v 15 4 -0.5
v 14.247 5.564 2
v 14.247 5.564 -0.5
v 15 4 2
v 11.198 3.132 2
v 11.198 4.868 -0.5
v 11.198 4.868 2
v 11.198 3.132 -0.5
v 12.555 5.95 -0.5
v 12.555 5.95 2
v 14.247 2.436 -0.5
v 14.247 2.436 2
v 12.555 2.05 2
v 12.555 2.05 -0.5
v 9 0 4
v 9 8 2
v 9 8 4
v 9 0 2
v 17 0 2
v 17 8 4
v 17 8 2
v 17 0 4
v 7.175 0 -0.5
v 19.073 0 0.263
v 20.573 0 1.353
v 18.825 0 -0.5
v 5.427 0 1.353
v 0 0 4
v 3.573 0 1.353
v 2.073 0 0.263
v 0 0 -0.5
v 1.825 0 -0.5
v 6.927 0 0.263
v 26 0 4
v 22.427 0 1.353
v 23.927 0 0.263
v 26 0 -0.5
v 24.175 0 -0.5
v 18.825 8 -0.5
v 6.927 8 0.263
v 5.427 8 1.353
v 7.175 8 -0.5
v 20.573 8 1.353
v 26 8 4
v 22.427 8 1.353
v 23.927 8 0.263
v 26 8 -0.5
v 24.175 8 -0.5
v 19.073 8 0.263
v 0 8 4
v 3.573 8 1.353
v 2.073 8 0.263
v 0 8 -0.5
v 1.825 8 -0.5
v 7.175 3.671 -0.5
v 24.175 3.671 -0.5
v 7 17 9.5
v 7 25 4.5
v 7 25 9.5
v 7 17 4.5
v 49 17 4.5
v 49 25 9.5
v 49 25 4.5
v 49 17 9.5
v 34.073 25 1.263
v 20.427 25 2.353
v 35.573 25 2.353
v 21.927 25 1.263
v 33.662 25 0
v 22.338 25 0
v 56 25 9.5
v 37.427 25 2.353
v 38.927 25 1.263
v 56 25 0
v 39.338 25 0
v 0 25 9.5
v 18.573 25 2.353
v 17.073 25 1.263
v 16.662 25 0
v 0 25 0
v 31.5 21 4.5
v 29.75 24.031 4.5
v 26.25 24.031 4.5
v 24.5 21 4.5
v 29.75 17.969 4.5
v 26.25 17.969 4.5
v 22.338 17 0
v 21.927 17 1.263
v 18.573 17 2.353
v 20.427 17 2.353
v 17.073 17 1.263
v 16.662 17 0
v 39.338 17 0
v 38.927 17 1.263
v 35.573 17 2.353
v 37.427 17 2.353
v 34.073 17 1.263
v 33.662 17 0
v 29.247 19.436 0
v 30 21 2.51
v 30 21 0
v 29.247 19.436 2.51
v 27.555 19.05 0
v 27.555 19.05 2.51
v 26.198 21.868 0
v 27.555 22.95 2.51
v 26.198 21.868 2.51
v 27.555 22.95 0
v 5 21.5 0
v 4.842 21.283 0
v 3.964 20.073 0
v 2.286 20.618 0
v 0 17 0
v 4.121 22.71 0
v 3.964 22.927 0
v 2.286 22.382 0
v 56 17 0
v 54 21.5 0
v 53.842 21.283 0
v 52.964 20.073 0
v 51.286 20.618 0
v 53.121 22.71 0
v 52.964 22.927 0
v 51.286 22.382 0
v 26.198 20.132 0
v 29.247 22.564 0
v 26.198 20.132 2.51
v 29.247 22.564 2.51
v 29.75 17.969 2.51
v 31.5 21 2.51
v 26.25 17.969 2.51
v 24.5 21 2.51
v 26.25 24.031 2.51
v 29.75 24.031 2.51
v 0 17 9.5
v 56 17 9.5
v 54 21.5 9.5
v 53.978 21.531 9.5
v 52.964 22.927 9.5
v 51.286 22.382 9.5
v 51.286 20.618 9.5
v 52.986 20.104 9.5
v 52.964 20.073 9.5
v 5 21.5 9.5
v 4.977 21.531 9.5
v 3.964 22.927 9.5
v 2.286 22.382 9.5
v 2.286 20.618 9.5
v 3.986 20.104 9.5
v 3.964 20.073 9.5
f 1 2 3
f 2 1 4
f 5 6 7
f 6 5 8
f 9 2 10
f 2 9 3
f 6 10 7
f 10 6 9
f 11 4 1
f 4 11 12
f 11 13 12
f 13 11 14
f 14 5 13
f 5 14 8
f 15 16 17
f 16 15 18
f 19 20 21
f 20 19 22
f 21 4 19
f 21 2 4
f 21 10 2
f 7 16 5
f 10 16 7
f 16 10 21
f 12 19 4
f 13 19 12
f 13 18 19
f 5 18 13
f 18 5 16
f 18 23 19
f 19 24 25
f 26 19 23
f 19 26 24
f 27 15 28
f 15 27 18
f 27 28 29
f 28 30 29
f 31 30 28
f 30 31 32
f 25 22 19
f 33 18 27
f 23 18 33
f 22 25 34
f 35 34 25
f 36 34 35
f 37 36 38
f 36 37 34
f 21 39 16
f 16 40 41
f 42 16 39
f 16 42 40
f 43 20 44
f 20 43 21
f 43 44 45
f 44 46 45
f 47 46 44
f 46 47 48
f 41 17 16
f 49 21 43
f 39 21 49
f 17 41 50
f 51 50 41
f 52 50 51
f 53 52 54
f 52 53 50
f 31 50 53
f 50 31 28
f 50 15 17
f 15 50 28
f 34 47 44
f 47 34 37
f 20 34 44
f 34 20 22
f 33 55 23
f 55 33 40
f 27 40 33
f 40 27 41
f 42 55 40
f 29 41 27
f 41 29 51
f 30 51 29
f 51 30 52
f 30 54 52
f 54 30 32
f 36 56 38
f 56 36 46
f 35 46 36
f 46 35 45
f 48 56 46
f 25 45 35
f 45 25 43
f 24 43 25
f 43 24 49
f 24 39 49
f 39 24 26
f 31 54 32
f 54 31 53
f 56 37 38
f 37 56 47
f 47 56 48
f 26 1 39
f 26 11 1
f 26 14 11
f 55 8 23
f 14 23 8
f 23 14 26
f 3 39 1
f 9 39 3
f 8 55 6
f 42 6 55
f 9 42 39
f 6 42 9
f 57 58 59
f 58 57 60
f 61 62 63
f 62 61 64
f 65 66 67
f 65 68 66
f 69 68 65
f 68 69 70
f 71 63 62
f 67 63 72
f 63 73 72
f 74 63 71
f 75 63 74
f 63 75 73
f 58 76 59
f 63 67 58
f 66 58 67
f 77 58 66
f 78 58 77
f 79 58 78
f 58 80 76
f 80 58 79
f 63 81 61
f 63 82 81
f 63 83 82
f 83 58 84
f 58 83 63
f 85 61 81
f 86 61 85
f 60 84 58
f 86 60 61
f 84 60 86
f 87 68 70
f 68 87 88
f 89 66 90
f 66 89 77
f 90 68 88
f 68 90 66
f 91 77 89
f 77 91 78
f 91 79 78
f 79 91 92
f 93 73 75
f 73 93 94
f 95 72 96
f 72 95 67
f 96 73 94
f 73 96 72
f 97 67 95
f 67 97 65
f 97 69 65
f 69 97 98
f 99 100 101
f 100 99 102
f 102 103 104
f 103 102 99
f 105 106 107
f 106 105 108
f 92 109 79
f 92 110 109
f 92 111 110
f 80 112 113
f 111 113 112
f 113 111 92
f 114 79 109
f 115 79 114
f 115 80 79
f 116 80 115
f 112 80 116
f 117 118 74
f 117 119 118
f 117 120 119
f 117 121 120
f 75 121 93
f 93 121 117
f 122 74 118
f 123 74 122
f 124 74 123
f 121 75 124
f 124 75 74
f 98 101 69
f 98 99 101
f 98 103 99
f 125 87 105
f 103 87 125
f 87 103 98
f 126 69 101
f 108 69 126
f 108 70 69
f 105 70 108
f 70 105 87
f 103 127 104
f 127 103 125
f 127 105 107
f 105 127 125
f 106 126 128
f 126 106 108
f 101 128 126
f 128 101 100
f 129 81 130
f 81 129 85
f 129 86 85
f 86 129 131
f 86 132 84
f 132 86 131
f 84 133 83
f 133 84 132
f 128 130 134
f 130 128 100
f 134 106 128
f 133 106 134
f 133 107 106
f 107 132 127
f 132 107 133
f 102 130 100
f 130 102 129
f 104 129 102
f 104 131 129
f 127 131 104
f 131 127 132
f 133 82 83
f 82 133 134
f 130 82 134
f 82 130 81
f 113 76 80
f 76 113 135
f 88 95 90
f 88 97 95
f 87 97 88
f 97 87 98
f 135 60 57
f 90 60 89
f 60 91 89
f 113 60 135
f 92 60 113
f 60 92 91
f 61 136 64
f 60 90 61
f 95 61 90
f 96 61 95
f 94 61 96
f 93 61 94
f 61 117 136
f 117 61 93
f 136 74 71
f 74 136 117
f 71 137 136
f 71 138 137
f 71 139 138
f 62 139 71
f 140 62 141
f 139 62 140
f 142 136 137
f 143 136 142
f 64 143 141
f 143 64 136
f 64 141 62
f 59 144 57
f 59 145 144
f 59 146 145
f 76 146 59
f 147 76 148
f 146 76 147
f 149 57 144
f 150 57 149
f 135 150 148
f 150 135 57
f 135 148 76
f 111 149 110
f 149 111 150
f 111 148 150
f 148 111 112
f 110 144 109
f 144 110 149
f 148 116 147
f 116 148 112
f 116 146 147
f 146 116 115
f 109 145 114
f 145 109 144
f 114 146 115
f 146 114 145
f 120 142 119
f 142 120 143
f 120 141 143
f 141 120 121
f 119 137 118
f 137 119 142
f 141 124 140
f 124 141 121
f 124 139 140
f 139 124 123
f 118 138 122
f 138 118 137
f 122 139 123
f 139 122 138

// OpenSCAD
// file: settings.scad
baseWidth = 70;
baseRadius = baseWidth / 2;
baseHeight = 3;
wheelCutDepth = 10;
wheelCutSize = 50;
motorWidth = 12;
motorHeight = 10;
motorLength = 23;
motorScrewSize = 4;

//rail
railDiameter=5.5;
railWidth=24;
railPos=28;

screwSize=4;
railSize=5;
screwSpace=2;
mountHeight=3;
railBlockLength=railSize+2*screwSpace;
screwAreaLength=screwSize+2*screwSpace;
topLength=2*railBlockLength+screwAreaLength;
mountItemSize=screwAreaLength;

servoWidth=25;
servoDepth=13;
servoOffset=6;
// main file
include <settings.scad>
use <parts-lib.scad>

translate([0,0,-1])
    pcb_mount_top(3,3);
translate([0,25,0])
    rotate([90,0,0])
    pcb_mount(3,2,2,49);
